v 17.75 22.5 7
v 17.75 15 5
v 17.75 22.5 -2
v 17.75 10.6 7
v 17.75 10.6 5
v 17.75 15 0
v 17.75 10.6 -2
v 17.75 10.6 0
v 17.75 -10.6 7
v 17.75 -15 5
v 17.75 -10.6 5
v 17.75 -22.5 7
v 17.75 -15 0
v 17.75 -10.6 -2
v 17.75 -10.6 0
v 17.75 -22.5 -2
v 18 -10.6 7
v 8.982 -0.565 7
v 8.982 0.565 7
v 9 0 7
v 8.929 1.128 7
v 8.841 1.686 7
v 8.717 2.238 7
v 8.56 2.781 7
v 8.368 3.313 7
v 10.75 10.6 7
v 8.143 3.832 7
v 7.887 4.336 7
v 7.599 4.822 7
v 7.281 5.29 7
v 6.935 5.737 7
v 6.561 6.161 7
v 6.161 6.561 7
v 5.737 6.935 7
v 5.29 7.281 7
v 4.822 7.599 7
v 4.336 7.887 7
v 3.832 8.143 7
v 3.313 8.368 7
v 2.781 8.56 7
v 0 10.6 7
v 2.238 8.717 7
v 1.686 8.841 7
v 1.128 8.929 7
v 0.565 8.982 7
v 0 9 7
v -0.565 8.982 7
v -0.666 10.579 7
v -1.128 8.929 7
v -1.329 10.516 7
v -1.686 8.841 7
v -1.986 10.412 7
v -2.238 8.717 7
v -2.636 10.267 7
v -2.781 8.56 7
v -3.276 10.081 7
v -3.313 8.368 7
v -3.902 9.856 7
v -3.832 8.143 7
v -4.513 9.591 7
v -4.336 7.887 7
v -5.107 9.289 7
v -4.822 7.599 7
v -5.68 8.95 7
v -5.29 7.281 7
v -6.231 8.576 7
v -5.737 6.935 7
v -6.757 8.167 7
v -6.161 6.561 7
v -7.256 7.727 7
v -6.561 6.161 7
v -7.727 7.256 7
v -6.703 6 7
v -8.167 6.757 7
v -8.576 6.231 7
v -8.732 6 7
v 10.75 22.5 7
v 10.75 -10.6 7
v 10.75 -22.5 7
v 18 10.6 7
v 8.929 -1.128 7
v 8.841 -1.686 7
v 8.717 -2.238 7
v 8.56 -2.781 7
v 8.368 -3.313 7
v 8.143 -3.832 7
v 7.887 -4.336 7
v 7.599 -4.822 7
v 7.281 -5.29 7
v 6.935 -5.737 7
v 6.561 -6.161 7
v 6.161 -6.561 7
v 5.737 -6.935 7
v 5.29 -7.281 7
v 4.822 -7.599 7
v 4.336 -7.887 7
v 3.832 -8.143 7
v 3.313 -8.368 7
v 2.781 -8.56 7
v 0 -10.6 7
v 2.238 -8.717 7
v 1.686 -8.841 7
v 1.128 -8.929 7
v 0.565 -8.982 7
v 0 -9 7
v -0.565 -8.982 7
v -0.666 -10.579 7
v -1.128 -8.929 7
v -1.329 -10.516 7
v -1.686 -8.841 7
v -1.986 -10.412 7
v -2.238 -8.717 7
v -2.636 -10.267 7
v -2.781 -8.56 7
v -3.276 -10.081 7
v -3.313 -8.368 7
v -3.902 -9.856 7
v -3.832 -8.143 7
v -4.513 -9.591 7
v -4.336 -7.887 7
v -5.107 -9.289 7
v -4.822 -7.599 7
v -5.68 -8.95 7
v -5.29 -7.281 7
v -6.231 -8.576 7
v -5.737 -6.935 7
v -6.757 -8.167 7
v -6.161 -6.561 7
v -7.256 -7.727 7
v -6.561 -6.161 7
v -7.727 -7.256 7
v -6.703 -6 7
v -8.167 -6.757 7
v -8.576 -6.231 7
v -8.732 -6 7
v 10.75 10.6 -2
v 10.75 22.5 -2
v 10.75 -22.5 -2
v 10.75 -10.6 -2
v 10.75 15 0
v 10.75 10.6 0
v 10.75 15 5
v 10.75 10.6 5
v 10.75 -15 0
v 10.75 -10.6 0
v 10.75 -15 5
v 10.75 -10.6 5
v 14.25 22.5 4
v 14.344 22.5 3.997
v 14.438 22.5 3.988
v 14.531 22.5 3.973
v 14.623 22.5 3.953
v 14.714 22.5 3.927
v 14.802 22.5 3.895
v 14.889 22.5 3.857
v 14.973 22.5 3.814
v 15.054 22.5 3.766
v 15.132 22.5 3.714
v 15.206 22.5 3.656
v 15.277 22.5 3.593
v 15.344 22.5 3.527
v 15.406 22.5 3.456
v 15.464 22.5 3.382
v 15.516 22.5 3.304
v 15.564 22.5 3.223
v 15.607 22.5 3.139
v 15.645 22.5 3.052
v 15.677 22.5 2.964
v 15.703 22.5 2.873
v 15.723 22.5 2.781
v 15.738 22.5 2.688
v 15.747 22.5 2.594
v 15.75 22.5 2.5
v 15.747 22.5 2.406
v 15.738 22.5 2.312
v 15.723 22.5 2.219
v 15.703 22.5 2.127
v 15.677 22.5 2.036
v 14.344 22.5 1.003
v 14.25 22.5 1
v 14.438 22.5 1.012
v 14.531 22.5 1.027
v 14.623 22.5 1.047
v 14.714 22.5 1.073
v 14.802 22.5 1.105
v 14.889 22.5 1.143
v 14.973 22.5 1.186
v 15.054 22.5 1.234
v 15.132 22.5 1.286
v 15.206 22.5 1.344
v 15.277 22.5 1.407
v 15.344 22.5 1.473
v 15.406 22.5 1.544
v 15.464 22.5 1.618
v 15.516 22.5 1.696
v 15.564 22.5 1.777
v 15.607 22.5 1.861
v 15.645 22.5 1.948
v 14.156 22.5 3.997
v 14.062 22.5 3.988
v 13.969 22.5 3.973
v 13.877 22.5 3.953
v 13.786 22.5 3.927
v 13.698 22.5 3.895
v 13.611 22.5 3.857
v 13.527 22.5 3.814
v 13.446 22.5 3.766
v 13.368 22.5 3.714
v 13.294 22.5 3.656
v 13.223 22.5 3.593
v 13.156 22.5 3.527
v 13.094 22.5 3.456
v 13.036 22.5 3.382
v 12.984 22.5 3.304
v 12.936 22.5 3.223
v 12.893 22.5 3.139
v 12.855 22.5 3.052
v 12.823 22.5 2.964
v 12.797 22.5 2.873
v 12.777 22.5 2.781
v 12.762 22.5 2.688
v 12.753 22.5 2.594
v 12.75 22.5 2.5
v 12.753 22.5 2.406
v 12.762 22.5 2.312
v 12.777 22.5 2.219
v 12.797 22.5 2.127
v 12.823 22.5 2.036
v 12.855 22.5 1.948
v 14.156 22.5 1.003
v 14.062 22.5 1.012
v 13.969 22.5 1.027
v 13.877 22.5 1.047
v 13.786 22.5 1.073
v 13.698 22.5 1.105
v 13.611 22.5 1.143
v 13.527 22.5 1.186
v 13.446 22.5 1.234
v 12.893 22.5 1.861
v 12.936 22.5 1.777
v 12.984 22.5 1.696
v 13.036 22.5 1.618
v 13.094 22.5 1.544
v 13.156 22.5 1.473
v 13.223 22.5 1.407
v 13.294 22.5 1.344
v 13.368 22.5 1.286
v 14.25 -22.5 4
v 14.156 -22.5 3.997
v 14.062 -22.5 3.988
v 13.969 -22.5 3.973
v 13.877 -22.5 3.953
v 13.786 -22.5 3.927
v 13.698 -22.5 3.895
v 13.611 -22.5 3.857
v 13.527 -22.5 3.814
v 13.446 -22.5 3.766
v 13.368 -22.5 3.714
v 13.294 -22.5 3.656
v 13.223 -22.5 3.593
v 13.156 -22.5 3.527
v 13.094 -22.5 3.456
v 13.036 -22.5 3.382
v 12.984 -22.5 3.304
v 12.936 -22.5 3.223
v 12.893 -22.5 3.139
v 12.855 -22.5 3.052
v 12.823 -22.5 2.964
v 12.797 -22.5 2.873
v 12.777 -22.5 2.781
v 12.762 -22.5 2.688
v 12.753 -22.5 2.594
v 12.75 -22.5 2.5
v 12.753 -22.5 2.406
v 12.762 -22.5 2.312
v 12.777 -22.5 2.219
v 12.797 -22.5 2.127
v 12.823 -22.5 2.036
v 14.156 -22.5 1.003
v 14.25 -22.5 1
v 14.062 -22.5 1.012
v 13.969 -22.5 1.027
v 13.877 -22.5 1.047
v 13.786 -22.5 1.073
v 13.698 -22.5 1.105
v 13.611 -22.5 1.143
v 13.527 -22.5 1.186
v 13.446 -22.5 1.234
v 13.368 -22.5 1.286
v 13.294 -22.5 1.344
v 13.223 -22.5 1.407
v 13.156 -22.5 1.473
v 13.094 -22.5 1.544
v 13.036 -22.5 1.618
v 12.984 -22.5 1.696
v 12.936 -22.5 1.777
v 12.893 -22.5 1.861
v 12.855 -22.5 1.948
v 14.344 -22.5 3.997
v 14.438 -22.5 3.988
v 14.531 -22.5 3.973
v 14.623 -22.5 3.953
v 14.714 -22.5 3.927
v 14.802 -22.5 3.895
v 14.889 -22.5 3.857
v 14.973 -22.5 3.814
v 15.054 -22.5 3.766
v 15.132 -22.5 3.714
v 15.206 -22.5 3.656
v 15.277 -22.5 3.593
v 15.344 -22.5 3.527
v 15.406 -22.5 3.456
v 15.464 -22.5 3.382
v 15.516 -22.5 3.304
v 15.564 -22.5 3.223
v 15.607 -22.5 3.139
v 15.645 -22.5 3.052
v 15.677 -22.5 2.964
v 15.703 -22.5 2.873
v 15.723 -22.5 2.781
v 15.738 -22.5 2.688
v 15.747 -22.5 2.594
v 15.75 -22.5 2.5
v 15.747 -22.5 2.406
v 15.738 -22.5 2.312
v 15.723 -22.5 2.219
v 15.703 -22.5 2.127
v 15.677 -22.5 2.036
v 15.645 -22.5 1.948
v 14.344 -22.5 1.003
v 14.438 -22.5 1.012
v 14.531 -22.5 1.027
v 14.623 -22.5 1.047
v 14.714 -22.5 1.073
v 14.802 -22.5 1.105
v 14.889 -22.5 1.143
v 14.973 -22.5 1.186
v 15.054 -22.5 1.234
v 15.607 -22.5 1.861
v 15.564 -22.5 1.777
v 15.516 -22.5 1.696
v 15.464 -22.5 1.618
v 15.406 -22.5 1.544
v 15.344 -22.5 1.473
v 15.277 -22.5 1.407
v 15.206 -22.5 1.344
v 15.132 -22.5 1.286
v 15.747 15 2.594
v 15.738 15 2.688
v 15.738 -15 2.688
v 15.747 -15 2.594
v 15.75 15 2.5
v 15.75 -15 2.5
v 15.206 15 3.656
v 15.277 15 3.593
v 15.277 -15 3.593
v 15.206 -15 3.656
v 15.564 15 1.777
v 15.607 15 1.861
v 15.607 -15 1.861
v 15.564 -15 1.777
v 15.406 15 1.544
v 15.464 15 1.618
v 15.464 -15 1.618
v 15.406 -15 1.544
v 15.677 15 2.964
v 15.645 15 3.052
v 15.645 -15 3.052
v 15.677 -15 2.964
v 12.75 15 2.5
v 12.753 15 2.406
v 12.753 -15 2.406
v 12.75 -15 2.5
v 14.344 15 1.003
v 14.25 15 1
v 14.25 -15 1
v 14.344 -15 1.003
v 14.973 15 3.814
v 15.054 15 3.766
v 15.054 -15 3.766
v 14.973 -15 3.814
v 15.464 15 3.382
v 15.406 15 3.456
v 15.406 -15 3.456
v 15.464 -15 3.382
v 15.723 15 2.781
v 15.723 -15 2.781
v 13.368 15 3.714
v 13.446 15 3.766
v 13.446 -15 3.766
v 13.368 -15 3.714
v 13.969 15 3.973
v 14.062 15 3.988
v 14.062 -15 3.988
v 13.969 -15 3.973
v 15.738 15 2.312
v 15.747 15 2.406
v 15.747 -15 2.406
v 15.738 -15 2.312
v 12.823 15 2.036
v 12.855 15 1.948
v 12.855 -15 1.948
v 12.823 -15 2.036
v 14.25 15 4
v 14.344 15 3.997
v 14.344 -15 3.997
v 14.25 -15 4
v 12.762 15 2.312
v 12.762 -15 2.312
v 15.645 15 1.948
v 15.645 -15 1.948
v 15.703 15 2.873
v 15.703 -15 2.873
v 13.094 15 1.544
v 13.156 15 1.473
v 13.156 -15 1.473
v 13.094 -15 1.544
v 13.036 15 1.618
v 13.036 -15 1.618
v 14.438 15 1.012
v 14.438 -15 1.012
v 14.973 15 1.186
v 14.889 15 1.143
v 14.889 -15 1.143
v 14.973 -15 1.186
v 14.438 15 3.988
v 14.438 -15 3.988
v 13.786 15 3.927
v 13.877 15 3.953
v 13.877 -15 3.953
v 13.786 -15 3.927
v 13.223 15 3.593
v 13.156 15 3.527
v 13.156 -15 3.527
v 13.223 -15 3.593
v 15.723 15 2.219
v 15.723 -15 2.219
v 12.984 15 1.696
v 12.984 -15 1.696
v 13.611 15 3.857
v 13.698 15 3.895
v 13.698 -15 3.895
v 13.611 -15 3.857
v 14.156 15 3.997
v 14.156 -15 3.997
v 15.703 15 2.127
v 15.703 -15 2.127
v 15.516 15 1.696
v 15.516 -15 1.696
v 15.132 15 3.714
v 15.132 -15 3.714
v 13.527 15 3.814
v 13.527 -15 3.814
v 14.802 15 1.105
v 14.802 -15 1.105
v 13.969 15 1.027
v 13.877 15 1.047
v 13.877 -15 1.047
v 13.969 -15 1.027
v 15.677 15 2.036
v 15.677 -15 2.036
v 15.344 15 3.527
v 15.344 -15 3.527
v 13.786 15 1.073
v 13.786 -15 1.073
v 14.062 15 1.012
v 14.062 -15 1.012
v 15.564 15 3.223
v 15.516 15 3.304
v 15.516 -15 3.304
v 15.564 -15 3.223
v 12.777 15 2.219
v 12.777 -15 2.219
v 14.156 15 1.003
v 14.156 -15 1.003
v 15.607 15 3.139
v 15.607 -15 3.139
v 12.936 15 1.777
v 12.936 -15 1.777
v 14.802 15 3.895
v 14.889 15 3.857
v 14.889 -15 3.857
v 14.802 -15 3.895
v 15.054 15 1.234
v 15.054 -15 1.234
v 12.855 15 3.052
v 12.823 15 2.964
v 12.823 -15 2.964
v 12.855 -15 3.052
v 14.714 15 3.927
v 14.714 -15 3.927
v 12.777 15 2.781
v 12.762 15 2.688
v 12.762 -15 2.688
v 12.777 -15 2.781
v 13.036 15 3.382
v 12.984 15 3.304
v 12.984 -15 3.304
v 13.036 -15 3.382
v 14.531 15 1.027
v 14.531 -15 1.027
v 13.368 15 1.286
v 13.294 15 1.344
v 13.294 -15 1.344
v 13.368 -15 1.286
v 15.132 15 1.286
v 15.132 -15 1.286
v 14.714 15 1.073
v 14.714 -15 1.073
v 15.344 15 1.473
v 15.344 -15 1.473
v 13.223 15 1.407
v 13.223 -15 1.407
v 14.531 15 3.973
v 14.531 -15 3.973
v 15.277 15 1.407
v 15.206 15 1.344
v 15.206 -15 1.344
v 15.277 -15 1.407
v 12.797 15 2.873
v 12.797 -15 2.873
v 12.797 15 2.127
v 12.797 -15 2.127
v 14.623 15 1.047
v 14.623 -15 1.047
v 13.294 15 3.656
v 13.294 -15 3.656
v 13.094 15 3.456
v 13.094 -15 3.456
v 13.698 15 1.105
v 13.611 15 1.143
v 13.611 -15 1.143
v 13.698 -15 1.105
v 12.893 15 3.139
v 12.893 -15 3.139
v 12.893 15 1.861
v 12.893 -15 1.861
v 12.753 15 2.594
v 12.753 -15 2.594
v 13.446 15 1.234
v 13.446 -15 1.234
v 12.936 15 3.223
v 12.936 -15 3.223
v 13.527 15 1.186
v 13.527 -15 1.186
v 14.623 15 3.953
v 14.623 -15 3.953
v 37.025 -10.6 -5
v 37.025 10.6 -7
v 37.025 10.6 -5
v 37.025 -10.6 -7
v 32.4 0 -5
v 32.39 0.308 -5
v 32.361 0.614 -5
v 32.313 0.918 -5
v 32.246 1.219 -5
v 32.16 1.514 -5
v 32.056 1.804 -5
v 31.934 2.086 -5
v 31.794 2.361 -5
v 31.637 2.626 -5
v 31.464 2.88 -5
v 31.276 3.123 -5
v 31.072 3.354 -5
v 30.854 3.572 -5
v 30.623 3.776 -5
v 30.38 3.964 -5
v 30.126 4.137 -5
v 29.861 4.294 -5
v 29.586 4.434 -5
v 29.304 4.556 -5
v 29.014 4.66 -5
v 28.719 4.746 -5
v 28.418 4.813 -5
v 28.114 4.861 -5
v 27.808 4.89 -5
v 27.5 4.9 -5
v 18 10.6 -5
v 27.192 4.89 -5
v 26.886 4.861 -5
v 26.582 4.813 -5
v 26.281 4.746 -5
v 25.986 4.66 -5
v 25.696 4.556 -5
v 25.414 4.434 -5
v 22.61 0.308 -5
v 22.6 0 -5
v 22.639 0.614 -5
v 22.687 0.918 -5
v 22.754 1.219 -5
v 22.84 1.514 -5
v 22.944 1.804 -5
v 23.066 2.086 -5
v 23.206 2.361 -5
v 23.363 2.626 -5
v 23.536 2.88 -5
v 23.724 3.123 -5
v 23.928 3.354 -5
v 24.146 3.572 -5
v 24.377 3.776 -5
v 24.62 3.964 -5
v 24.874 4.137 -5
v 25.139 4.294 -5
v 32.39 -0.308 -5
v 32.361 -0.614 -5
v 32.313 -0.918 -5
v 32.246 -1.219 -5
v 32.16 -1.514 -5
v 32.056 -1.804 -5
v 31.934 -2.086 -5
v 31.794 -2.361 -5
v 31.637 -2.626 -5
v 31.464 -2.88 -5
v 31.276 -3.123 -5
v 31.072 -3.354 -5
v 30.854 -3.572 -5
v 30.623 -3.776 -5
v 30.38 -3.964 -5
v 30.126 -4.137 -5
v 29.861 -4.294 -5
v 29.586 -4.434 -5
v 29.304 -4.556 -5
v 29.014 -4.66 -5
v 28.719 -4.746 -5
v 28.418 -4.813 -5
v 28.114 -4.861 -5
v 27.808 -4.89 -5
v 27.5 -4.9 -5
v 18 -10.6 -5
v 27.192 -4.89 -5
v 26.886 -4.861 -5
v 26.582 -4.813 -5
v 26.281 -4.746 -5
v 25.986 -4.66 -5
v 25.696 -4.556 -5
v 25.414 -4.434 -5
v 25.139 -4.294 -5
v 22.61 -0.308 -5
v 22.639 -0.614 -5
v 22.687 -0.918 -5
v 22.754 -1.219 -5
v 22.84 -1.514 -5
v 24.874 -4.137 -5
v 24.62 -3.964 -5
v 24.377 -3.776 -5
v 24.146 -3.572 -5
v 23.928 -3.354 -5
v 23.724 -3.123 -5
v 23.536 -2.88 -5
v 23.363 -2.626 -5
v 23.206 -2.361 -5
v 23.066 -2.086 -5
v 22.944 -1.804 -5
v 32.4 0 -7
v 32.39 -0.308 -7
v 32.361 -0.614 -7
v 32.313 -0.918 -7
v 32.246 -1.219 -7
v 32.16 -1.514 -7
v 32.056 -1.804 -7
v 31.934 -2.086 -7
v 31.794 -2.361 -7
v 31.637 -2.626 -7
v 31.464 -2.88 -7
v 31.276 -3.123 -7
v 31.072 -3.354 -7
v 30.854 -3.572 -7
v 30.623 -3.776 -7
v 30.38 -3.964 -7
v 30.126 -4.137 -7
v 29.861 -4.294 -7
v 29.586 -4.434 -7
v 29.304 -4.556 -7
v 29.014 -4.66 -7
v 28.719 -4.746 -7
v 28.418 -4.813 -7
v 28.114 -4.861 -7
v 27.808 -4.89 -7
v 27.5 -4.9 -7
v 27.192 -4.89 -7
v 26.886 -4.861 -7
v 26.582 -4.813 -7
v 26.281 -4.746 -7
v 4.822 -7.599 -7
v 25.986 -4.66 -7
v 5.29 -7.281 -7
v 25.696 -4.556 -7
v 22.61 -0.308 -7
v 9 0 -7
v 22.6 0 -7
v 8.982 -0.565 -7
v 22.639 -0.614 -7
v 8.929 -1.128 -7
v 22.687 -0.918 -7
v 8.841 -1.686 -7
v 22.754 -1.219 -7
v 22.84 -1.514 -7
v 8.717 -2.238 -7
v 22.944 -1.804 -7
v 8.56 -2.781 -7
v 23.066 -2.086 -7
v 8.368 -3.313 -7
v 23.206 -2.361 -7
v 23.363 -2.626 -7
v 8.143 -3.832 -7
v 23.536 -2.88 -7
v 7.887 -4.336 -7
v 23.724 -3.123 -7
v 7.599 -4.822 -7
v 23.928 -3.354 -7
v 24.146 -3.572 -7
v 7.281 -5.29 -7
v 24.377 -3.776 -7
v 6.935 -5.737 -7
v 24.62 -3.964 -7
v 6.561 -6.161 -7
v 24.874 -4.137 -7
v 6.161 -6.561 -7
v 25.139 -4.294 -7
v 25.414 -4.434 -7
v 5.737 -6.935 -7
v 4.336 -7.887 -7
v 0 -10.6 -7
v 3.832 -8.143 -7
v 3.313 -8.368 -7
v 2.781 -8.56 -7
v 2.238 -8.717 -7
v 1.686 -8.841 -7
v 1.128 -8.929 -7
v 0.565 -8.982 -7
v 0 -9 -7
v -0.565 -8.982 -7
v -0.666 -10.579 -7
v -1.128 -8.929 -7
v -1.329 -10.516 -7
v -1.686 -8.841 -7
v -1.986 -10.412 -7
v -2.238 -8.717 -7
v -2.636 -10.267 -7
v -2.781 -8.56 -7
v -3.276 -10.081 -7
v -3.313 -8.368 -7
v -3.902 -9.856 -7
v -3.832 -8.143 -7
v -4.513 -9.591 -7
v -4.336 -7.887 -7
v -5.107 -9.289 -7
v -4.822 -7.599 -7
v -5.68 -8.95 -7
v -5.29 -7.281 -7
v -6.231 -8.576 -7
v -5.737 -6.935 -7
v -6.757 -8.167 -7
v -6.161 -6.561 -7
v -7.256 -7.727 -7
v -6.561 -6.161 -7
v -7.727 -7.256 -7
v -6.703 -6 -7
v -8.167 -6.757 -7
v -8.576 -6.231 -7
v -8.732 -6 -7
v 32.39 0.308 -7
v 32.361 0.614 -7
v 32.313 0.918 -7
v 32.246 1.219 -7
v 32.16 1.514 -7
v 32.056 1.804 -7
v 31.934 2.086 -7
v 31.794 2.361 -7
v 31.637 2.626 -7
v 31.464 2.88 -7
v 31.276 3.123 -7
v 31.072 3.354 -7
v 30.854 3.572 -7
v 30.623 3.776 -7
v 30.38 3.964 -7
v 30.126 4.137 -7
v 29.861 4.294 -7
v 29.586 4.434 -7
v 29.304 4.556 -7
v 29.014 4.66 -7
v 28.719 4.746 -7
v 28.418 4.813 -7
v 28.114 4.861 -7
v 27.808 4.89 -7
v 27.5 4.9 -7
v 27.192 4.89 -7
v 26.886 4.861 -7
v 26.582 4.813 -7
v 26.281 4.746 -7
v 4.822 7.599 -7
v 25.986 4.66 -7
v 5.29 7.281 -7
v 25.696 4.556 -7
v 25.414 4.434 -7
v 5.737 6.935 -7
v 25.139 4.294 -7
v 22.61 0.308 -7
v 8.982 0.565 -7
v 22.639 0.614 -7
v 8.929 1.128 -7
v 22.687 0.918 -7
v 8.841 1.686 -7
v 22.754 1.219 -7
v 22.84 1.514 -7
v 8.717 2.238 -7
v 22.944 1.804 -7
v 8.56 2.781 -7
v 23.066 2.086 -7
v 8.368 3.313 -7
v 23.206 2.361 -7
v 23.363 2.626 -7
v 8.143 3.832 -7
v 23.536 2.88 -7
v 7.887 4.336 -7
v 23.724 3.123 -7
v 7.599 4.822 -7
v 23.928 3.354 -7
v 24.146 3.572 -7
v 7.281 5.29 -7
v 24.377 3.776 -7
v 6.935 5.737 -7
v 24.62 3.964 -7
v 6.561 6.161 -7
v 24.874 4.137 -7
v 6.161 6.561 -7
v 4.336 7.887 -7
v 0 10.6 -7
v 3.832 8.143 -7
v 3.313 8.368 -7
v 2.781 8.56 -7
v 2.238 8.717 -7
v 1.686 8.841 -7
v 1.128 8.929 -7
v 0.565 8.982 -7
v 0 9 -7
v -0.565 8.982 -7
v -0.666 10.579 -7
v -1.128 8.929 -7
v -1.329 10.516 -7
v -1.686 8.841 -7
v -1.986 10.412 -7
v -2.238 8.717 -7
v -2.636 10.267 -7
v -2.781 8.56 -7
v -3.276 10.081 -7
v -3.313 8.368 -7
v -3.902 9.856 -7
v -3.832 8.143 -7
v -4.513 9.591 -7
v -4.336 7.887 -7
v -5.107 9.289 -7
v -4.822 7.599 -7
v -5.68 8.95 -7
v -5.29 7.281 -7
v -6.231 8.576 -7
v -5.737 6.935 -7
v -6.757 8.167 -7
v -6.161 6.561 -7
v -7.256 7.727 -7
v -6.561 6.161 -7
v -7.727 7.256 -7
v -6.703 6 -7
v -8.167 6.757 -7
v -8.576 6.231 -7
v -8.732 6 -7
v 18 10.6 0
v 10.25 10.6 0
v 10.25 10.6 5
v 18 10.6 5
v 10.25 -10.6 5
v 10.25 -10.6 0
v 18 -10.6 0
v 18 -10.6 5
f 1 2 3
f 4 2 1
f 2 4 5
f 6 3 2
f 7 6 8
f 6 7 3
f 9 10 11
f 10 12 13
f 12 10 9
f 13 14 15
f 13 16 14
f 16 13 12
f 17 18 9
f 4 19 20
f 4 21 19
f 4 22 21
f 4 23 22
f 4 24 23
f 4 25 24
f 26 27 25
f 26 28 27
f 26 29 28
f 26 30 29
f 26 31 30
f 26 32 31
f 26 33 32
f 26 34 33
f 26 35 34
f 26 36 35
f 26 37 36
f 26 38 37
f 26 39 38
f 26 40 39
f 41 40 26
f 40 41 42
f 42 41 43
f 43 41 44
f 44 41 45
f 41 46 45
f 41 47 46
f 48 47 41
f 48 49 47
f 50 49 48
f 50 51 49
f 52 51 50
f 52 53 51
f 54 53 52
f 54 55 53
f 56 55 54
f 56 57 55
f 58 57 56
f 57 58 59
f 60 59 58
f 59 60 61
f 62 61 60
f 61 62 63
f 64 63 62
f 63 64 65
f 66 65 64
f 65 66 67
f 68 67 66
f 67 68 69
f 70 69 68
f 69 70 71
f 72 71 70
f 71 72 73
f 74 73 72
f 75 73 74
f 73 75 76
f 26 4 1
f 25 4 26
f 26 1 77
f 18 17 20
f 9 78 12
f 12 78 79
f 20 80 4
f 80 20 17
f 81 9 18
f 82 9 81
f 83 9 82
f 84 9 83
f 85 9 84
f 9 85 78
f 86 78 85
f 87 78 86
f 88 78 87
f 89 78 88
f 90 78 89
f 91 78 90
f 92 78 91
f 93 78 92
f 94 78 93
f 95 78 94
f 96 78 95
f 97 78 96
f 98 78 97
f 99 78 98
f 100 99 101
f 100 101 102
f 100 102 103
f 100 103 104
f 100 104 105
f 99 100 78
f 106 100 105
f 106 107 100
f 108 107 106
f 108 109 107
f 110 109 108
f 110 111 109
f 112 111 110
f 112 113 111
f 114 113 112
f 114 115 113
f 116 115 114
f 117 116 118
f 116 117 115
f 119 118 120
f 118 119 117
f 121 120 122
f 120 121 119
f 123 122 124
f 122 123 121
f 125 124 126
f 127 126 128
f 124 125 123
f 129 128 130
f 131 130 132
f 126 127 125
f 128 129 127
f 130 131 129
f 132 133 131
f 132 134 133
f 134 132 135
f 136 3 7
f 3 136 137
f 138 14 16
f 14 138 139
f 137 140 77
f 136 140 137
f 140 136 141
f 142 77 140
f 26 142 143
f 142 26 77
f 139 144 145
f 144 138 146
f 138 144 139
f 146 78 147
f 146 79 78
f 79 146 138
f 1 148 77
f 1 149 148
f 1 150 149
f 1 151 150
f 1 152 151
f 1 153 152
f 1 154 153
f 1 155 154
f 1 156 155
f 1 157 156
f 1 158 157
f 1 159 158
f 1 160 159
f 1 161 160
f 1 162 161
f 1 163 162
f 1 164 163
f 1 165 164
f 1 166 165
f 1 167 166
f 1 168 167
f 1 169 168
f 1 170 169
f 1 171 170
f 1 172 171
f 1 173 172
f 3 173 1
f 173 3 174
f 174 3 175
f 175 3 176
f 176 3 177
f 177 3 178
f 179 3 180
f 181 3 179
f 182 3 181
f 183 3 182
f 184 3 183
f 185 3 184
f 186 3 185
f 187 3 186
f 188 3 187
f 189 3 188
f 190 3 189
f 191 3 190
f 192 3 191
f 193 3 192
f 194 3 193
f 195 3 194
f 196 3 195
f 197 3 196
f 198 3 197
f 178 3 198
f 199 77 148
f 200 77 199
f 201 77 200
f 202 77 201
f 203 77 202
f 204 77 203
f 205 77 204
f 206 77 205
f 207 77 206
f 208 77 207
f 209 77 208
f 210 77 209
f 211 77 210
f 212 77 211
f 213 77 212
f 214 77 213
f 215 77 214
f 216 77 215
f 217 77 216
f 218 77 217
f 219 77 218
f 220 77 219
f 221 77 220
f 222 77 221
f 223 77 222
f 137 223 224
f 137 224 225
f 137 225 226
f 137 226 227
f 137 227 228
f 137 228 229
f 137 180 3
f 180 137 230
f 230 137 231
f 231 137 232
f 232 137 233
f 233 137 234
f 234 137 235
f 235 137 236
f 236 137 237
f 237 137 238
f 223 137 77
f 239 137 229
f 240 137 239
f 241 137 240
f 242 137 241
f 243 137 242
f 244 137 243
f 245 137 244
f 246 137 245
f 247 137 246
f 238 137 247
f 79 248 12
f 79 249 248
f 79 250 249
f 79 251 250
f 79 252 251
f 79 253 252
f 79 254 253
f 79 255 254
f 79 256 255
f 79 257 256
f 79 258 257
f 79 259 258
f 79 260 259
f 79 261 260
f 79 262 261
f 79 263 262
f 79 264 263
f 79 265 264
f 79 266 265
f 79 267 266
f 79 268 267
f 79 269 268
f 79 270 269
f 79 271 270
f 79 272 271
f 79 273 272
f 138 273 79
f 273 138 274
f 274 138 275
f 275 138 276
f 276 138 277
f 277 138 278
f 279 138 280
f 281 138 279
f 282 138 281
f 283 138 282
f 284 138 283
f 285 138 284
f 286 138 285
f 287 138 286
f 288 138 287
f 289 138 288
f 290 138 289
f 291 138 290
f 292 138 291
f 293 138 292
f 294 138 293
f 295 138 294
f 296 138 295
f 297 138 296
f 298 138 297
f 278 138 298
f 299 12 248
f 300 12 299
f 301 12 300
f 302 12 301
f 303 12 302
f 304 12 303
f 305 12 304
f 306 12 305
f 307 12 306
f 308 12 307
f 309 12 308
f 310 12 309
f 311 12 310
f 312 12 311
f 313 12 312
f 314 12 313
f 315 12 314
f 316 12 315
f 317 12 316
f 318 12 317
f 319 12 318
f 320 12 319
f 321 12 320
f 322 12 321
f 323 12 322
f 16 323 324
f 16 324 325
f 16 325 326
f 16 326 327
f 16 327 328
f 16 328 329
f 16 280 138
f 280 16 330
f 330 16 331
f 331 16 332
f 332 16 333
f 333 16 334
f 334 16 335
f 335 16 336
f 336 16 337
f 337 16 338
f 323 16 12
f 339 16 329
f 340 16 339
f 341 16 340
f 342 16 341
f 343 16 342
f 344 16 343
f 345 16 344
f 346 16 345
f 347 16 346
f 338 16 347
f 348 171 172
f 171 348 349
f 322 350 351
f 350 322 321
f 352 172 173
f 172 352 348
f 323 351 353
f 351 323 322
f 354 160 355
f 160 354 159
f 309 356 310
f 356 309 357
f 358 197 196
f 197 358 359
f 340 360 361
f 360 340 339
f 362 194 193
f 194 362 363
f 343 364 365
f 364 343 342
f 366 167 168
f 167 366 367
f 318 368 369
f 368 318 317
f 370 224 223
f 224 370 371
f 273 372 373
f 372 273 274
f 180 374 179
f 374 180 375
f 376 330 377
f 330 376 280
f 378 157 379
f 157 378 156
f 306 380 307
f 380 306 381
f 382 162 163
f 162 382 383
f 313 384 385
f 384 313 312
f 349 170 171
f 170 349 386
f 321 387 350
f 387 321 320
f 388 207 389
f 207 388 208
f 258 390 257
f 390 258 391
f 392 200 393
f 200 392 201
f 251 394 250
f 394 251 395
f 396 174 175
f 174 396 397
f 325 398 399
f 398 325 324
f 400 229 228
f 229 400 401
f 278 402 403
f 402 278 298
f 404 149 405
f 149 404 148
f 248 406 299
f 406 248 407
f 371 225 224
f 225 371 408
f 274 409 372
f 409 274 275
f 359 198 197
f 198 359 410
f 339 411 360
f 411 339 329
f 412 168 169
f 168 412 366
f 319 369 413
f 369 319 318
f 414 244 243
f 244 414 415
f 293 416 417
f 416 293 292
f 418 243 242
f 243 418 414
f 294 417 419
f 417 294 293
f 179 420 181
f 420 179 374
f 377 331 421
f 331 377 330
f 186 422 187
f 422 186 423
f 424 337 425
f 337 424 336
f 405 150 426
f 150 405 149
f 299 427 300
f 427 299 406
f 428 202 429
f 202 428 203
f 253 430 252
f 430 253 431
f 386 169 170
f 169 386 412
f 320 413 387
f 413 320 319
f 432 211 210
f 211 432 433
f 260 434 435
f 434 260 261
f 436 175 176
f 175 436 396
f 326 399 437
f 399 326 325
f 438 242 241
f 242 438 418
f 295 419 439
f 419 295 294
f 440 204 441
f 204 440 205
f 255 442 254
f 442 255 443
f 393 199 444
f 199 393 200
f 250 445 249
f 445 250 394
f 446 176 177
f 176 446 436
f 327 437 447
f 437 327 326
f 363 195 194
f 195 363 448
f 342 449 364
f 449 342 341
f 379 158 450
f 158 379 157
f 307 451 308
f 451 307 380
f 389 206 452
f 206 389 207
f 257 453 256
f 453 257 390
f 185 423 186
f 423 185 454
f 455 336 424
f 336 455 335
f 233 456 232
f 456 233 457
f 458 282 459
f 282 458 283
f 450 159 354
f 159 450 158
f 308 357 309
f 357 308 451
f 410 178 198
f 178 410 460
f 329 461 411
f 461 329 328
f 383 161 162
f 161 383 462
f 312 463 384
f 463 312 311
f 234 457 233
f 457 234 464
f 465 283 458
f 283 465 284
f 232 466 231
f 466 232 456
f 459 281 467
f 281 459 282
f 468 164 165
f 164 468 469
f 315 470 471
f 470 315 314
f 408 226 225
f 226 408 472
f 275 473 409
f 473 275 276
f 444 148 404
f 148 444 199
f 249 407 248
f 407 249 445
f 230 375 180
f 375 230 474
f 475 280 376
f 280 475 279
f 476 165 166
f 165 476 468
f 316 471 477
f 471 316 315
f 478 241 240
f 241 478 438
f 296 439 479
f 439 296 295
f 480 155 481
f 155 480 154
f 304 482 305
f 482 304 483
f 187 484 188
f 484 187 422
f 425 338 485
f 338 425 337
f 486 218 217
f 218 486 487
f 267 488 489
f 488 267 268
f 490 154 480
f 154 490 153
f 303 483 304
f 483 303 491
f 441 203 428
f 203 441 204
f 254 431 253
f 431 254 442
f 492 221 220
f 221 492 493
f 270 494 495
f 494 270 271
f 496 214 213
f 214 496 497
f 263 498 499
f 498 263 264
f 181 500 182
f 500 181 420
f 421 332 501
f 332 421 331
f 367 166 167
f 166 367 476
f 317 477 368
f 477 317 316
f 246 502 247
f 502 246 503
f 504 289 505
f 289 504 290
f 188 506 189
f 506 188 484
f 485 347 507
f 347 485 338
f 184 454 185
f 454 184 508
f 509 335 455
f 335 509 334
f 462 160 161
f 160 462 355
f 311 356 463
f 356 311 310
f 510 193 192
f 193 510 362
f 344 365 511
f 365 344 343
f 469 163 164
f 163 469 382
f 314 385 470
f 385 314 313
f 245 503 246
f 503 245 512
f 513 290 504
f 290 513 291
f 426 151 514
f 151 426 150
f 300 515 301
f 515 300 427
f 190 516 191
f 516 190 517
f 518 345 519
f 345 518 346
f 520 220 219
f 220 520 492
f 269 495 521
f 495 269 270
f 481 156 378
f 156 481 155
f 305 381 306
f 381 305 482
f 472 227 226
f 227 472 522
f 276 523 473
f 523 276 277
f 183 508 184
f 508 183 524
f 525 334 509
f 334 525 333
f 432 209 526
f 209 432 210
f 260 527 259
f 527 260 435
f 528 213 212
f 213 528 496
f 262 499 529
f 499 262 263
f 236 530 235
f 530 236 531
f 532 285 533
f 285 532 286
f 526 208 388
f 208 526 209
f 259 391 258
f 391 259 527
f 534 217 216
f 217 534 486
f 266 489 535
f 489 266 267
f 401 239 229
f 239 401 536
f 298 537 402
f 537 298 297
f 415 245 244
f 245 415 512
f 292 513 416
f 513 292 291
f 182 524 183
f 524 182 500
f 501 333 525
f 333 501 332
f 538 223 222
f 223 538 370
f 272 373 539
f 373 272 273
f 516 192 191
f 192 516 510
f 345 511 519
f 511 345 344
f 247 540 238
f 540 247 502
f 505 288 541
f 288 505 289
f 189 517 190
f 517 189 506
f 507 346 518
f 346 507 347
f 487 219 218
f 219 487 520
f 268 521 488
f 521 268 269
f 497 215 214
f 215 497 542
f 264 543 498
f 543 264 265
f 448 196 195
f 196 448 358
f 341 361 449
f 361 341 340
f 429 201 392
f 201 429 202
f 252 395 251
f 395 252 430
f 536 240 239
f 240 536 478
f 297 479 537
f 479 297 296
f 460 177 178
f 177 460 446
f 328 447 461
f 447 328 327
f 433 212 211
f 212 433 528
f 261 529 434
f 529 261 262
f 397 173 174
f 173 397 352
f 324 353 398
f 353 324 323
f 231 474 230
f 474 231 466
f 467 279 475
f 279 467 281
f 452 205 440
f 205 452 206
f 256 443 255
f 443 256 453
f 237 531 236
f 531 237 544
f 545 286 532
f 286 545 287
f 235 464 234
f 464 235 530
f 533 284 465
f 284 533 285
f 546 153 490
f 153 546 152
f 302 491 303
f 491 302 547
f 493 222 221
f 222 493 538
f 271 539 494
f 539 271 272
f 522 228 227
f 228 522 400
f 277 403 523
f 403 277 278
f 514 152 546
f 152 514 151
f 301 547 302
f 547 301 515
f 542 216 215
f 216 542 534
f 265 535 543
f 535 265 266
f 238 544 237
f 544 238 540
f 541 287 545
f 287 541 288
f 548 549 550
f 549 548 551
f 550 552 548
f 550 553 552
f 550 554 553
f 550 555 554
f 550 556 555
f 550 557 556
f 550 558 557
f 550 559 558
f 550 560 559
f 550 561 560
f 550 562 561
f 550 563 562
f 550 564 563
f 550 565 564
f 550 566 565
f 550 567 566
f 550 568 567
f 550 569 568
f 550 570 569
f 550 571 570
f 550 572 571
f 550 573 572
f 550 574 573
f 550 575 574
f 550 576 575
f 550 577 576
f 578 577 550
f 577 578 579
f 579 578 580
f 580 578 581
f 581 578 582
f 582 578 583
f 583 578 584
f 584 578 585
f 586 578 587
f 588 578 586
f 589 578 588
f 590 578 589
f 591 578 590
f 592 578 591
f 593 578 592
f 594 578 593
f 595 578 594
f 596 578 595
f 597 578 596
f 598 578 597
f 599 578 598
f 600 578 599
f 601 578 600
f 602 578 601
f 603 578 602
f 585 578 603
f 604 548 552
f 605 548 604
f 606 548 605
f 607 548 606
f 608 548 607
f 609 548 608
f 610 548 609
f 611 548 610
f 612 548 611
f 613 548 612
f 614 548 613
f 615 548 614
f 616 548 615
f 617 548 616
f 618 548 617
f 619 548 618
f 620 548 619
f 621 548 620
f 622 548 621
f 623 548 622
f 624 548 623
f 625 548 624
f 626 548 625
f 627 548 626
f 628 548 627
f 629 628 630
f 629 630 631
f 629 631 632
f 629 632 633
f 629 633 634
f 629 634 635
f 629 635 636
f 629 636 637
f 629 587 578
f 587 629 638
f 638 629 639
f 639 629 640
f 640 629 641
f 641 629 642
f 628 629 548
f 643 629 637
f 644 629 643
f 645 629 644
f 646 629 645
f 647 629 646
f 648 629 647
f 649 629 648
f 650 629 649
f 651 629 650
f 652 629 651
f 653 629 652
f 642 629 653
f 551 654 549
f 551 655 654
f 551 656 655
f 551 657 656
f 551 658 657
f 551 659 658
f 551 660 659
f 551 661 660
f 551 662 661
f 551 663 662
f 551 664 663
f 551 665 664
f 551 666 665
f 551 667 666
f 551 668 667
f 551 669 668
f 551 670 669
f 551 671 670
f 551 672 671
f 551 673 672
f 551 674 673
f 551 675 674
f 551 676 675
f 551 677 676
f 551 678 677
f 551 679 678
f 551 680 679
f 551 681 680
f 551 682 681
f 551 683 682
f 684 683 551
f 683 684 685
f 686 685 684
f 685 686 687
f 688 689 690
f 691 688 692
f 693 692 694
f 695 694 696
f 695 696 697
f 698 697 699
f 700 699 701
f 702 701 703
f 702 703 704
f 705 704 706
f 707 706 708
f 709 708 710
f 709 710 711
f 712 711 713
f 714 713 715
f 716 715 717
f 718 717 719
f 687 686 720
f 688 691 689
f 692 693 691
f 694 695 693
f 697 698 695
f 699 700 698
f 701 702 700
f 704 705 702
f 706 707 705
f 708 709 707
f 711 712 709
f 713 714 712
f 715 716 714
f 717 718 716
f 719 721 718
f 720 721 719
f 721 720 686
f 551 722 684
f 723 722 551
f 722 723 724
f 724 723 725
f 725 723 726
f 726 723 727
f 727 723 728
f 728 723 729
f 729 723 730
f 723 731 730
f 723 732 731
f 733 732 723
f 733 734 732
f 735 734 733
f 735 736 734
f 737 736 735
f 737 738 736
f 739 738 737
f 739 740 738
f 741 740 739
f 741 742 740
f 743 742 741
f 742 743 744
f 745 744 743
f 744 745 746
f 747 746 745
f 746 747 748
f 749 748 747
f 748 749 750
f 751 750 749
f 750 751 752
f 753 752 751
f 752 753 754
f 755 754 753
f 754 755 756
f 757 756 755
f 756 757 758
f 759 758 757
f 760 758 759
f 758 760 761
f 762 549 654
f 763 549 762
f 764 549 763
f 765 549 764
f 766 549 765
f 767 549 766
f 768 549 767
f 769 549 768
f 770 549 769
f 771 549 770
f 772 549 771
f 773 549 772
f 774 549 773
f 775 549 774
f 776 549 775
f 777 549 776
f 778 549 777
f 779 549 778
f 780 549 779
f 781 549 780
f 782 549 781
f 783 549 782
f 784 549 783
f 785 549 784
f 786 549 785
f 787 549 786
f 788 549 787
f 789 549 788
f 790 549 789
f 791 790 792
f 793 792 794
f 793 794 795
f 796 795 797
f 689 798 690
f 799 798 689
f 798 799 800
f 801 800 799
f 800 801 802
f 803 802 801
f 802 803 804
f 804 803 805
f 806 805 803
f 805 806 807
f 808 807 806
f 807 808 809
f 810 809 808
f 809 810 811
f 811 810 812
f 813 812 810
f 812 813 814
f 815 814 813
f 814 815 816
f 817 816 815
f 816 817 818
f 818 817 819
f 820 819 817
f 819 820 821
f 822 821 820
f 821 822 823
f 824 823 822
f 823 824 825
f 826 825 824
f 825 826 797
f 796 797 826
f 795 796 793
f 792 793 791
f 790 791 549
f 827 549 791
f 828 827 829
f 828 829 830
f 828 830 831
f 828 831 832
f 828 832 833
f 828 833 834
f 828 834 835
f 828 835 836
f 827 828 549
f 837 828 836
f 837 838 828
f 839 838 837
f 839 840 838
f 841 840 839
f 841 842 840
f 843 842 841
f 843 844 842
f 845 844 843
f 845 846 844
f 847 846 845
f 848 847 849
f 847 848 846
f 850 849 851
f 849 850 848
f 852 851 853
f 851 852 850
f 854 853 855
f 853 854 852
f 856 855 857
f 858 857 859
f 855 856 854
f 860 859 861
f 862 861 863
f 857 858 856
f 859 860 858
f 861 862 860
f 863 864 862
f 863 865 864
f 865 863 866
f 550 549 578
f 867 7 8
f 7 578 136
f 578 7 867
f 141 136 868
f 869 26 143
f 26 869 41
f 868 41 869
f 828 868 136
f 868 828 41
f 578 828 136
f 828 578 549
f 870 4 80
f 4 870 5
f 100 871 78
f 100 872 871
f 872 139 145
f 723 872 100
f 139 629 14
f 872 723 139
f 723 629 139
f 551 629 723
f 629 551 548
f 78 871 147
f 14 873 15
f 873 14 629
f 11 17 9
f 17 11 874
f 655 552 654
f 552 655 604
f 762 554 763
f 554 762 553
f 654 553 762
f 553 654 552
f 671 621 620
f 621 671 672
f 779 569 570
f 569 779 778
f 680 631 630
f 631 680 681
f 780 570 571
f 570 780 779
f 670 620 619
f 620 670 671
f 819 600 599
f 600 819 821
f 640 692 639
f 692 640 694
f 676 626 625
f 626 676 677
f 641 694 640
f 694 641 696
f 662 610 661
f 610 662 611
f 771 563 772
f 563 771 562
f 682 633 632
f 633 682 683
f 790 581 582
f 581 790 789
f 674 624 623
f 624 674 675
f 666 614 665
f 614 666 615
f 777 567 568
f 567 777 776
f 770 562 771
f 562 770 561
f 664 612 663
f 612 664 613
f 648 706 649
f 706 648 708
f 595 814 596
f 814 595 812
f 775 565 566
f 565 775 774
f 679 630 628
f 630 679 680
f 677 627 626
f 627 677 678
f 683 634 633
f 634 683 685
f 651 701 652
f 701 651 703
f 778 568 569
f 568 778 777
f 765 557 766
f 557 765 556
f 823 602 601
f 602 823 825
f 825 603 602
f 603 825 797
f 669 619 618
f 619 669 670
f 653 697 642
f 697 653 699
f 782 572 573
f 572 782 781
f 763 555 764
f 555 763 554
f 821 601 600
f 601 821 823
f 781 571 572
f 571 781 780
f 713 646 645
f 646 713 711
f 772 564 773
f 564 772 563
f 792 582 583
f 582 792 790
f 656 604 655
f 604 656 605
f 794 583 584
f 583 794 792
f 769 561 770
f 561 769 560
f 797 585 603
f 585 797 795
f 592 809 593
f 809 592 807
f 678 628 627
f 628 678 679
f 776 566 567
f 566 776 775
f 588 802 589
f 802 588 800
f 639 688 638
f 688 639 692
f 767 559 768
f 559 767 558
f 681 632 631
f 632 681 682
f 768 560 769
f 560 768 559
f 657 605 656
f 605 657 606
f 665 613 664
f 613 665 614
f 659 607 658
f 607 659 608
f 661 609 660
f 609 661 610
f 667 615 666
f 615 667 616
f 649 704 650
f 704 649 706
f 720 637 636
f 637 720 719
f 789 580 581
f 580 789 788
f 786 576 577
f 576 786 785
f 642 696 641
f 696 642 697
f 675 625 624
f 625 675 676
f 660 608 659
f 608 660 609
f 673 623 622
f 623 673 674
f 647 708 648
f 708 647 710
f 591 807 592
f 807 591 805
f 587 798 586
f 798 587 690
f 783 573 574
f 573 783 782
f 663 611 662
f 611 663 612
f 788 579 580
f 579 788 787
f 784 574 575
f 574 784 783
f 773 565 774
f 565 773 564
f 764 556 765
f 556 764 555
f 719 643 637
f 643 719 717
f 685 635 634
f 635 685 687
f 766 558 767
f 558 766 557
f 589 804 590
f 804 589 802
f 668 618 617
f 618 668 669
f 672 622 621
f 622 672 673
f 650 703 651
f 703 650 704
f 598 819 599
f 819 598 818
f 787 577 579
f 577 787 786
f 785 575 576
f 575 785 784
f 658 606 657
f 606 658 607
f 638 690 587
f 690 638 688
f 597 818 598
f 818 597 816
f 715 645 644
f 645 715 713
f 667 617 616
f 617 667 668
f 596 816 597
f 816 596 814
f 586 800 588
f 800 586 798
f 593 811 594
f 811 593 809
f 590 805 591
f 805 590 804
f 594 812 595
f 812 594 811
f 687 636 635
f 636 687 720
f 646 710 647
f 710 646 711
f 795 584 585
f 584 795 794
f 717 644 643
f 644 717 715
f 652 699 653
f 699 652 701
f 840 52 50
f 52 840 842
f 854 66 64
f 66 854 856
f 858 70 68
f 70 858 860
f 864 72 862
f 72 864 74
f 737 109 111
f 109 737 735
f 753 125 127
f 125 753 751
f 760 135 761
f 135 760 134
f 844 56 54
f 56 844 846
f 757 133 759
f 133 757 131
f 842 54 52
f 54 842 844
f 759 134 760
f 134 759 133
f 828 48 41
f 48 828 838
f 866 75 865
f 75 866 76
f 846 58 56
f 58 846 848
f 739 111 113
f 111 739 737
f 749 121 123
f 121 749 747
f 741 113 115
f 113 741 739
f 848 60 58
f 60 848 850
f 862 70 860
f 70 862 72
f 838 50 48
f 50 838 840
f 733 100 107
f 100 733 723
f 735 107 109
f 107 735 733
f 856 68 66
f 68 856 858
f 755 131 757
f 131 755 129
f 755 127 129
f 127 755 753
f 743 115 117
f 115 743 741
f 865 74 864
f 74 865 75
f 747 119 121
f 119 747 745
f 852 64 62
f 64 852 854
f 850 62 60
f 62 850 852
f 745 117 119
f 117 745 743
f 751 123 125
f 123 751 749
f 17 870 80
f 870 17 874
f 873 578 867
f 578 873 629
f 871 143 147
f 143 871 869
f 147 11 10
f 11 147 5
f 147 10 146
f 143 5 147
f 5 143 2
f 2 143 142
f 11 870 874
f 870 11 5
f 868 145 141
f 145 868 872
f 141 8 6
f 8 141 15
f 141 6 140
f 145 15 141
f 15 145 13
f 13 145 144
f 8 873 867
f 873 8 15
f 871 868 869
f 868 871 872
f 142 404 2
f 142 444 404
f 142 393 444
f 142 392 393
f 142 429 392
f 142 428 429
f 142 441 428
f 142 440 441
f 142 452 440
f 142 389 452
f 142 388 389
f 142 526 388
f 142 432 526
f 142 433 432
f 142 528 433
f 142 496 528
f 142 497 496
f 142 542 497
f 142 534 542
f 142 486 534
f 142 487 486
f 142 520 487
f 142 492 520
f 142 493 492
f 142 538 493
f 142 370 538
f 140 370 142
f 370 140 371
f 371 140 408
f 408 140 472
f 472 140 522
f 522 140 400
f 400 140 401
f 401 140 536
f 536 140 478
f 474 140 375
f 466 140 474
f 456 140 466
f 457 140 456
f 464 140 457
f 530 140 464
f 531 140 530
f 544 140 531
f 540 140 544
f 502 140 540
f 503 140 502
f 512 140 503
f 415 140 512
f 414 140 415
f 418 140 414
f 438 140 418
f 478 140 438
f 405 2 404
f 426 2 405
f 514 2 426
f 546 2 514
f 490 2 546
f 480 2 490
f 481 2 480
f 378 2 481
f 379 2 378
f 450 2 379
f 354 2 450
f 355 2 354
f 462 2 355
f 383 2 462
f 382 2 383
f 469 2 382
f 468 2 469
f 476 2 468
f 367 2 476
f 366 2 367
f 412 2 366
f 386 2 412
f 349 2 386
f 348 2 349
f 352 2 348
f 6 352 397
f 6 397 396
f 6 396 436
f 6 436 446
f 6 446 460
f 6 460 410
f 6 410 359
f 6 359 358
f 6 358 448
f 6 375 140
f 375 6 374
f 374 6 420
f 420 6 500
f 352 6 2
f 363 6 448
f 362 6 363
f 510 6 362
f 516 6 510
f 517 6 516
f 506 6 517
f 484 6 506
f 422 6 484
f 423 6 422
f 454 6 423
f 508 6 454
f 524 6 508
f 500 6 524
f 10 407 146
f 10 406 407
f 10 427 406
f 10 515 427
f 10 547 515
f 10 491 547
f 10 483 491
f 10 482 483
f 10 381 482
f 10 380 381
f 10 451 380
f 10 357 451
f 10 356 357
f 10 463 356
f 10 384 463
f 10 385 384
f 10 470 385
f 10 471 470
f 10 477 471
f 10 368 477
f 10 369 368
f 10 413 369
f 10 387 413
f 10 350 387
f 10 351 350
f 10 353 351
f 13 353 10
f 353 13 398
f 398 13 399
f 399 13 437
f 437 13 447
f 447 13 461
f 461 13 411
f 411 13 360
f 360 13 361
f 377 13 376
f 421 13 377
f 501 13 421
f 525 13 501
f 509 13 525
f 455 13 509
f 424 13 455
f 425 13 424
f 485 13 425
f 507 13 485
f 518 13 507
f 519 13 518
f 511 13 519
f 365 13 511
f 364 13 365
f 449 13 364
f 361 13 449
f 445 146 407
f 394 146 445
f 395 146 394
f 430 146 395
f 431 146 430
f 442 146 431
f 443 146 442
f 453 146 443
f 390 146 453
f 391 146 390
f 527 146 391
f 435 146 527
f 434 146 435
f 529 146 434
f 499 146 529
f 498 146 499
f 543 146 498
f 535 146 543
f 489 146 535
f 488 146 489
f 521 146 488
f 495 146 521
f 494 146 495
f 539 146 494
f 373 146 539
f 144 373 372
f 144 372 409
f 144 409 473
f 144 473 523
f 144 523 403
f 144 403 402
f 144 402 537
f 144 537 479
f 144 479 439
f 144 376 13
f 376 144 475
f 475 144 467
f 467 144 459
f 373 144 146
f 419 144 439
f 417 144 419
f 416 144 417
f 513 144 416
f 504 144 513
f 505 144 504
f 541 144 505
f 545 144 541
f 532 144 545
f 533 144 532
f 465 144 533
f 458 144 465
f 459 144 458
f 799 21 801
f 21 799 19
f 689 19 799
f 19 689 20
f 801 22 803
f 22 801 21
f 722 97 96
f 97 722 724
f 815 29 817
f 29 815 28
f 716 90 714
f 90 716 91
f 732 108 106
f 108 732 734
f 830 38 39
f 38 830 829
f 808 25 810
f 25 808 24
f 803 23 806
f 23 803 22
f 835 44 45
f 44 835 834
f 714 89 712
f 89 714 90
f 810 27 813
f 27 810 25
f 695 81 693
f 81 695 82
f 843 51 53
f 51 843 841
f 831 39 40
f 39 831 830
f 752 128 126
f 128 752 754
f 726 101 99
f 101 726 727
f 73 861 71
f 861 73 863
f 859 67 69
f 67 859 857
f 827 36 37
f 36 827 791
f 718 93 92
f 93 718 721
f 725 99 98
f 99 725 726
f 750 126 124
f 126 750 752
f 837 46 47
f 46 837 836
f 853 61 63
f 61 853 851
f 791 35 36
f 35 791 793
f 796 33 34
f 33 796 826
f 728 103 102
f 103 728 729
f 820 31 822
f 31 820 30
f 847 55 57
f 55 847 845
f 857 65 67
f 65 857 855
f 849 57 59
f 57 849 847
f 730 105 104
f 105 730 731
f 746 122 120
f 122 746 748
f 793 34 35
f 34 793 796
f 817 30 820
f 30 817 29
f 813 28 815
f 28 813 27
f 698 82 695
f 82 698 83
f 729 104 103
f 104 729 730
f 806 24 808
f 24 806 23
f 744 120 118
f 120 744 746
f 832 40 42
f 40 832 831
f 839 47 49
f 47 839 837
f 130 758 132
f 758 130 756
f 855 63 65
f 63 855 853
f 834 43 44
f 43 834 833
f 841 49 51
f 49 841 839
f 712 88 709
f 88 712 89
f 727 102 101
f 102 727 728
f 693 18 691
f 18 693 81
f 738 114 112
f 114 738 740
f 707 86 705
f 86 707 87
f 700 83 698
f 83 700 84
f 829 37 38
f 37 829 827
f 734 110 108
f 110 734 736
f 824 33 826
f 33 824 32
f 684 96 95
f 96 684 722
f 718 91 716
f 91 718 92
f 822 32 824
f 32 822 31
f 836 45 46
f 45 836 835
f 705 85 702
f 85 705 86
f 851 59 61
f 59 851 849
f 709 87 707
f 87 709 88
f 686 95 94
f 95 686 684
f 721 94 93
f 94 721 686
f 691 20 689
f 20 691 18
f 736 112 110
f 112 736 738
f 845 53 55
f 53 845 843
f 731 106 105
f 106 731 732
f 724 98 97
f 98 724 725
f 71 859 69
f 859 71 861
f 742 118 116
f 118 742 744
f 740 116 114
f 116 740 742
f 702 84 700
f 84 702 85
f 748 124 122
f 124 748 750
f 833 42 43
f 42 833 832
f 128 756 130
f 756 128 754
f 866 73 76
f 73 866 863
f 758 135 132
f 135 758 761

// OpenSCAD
$fn = 100;

thi = 1.6;    // arm thickness
dia = 18;     // pipe diameter
hei = 9;      // plastic height over boom
eob = 3.5;    // element-over-boom placement
gap = 12;     // gap between arms
length = 14;  // total length
el_dia = 3;

e=0.05;

bncpl_hei = 19; // bnc plate height
bncpl_thi = 2;  // bnc plate thickness

// dipole arms holder block
dh_width = 45;
dh_hei = 7;
dh_len = 9;

dipole_offset = 2.5;

difference() {
    union() {
        // main arms
        cylinder(d=dia+2*thi, h=length, center=true);
        
        // top block
        translate([hei,0,0])
        cube([2*hei,dia+2*thi,length], center=true);
        translate([hei+eob+dh_hei/4,0,dipole_offset])
        difference() {
            cube([dh_hei,dh_width,dh_len], center=true);
            rotate([90,0,0])
            cylinder(d=el_dia,h=100, center=true);
        }
        
        // BNC plate
        color("red")
        translate([bncpl_hei/2+dia/2+hei,0,-length/2+bncpl_thi/2])
        difference() {
            cube([bncpl_hei+e,dia+2*thi,bncpl_thi],center=true);
            cylinder(d=9.8, h=bncpl_thi+e, center=true);
        }
    }
    
    // hole for clamps
    translate([hei+eob+dh_hei/4,0,dipole_offset])
    cube([8,30,5], center=true);
    
    // hole for pipe
    cylinder(d=dia, h=length+2*e, center=true);
    
    // gap between arms
    translate([-hei,0,0])
    cube([2*hei,gap,length+2*e], center=true);
    
}
